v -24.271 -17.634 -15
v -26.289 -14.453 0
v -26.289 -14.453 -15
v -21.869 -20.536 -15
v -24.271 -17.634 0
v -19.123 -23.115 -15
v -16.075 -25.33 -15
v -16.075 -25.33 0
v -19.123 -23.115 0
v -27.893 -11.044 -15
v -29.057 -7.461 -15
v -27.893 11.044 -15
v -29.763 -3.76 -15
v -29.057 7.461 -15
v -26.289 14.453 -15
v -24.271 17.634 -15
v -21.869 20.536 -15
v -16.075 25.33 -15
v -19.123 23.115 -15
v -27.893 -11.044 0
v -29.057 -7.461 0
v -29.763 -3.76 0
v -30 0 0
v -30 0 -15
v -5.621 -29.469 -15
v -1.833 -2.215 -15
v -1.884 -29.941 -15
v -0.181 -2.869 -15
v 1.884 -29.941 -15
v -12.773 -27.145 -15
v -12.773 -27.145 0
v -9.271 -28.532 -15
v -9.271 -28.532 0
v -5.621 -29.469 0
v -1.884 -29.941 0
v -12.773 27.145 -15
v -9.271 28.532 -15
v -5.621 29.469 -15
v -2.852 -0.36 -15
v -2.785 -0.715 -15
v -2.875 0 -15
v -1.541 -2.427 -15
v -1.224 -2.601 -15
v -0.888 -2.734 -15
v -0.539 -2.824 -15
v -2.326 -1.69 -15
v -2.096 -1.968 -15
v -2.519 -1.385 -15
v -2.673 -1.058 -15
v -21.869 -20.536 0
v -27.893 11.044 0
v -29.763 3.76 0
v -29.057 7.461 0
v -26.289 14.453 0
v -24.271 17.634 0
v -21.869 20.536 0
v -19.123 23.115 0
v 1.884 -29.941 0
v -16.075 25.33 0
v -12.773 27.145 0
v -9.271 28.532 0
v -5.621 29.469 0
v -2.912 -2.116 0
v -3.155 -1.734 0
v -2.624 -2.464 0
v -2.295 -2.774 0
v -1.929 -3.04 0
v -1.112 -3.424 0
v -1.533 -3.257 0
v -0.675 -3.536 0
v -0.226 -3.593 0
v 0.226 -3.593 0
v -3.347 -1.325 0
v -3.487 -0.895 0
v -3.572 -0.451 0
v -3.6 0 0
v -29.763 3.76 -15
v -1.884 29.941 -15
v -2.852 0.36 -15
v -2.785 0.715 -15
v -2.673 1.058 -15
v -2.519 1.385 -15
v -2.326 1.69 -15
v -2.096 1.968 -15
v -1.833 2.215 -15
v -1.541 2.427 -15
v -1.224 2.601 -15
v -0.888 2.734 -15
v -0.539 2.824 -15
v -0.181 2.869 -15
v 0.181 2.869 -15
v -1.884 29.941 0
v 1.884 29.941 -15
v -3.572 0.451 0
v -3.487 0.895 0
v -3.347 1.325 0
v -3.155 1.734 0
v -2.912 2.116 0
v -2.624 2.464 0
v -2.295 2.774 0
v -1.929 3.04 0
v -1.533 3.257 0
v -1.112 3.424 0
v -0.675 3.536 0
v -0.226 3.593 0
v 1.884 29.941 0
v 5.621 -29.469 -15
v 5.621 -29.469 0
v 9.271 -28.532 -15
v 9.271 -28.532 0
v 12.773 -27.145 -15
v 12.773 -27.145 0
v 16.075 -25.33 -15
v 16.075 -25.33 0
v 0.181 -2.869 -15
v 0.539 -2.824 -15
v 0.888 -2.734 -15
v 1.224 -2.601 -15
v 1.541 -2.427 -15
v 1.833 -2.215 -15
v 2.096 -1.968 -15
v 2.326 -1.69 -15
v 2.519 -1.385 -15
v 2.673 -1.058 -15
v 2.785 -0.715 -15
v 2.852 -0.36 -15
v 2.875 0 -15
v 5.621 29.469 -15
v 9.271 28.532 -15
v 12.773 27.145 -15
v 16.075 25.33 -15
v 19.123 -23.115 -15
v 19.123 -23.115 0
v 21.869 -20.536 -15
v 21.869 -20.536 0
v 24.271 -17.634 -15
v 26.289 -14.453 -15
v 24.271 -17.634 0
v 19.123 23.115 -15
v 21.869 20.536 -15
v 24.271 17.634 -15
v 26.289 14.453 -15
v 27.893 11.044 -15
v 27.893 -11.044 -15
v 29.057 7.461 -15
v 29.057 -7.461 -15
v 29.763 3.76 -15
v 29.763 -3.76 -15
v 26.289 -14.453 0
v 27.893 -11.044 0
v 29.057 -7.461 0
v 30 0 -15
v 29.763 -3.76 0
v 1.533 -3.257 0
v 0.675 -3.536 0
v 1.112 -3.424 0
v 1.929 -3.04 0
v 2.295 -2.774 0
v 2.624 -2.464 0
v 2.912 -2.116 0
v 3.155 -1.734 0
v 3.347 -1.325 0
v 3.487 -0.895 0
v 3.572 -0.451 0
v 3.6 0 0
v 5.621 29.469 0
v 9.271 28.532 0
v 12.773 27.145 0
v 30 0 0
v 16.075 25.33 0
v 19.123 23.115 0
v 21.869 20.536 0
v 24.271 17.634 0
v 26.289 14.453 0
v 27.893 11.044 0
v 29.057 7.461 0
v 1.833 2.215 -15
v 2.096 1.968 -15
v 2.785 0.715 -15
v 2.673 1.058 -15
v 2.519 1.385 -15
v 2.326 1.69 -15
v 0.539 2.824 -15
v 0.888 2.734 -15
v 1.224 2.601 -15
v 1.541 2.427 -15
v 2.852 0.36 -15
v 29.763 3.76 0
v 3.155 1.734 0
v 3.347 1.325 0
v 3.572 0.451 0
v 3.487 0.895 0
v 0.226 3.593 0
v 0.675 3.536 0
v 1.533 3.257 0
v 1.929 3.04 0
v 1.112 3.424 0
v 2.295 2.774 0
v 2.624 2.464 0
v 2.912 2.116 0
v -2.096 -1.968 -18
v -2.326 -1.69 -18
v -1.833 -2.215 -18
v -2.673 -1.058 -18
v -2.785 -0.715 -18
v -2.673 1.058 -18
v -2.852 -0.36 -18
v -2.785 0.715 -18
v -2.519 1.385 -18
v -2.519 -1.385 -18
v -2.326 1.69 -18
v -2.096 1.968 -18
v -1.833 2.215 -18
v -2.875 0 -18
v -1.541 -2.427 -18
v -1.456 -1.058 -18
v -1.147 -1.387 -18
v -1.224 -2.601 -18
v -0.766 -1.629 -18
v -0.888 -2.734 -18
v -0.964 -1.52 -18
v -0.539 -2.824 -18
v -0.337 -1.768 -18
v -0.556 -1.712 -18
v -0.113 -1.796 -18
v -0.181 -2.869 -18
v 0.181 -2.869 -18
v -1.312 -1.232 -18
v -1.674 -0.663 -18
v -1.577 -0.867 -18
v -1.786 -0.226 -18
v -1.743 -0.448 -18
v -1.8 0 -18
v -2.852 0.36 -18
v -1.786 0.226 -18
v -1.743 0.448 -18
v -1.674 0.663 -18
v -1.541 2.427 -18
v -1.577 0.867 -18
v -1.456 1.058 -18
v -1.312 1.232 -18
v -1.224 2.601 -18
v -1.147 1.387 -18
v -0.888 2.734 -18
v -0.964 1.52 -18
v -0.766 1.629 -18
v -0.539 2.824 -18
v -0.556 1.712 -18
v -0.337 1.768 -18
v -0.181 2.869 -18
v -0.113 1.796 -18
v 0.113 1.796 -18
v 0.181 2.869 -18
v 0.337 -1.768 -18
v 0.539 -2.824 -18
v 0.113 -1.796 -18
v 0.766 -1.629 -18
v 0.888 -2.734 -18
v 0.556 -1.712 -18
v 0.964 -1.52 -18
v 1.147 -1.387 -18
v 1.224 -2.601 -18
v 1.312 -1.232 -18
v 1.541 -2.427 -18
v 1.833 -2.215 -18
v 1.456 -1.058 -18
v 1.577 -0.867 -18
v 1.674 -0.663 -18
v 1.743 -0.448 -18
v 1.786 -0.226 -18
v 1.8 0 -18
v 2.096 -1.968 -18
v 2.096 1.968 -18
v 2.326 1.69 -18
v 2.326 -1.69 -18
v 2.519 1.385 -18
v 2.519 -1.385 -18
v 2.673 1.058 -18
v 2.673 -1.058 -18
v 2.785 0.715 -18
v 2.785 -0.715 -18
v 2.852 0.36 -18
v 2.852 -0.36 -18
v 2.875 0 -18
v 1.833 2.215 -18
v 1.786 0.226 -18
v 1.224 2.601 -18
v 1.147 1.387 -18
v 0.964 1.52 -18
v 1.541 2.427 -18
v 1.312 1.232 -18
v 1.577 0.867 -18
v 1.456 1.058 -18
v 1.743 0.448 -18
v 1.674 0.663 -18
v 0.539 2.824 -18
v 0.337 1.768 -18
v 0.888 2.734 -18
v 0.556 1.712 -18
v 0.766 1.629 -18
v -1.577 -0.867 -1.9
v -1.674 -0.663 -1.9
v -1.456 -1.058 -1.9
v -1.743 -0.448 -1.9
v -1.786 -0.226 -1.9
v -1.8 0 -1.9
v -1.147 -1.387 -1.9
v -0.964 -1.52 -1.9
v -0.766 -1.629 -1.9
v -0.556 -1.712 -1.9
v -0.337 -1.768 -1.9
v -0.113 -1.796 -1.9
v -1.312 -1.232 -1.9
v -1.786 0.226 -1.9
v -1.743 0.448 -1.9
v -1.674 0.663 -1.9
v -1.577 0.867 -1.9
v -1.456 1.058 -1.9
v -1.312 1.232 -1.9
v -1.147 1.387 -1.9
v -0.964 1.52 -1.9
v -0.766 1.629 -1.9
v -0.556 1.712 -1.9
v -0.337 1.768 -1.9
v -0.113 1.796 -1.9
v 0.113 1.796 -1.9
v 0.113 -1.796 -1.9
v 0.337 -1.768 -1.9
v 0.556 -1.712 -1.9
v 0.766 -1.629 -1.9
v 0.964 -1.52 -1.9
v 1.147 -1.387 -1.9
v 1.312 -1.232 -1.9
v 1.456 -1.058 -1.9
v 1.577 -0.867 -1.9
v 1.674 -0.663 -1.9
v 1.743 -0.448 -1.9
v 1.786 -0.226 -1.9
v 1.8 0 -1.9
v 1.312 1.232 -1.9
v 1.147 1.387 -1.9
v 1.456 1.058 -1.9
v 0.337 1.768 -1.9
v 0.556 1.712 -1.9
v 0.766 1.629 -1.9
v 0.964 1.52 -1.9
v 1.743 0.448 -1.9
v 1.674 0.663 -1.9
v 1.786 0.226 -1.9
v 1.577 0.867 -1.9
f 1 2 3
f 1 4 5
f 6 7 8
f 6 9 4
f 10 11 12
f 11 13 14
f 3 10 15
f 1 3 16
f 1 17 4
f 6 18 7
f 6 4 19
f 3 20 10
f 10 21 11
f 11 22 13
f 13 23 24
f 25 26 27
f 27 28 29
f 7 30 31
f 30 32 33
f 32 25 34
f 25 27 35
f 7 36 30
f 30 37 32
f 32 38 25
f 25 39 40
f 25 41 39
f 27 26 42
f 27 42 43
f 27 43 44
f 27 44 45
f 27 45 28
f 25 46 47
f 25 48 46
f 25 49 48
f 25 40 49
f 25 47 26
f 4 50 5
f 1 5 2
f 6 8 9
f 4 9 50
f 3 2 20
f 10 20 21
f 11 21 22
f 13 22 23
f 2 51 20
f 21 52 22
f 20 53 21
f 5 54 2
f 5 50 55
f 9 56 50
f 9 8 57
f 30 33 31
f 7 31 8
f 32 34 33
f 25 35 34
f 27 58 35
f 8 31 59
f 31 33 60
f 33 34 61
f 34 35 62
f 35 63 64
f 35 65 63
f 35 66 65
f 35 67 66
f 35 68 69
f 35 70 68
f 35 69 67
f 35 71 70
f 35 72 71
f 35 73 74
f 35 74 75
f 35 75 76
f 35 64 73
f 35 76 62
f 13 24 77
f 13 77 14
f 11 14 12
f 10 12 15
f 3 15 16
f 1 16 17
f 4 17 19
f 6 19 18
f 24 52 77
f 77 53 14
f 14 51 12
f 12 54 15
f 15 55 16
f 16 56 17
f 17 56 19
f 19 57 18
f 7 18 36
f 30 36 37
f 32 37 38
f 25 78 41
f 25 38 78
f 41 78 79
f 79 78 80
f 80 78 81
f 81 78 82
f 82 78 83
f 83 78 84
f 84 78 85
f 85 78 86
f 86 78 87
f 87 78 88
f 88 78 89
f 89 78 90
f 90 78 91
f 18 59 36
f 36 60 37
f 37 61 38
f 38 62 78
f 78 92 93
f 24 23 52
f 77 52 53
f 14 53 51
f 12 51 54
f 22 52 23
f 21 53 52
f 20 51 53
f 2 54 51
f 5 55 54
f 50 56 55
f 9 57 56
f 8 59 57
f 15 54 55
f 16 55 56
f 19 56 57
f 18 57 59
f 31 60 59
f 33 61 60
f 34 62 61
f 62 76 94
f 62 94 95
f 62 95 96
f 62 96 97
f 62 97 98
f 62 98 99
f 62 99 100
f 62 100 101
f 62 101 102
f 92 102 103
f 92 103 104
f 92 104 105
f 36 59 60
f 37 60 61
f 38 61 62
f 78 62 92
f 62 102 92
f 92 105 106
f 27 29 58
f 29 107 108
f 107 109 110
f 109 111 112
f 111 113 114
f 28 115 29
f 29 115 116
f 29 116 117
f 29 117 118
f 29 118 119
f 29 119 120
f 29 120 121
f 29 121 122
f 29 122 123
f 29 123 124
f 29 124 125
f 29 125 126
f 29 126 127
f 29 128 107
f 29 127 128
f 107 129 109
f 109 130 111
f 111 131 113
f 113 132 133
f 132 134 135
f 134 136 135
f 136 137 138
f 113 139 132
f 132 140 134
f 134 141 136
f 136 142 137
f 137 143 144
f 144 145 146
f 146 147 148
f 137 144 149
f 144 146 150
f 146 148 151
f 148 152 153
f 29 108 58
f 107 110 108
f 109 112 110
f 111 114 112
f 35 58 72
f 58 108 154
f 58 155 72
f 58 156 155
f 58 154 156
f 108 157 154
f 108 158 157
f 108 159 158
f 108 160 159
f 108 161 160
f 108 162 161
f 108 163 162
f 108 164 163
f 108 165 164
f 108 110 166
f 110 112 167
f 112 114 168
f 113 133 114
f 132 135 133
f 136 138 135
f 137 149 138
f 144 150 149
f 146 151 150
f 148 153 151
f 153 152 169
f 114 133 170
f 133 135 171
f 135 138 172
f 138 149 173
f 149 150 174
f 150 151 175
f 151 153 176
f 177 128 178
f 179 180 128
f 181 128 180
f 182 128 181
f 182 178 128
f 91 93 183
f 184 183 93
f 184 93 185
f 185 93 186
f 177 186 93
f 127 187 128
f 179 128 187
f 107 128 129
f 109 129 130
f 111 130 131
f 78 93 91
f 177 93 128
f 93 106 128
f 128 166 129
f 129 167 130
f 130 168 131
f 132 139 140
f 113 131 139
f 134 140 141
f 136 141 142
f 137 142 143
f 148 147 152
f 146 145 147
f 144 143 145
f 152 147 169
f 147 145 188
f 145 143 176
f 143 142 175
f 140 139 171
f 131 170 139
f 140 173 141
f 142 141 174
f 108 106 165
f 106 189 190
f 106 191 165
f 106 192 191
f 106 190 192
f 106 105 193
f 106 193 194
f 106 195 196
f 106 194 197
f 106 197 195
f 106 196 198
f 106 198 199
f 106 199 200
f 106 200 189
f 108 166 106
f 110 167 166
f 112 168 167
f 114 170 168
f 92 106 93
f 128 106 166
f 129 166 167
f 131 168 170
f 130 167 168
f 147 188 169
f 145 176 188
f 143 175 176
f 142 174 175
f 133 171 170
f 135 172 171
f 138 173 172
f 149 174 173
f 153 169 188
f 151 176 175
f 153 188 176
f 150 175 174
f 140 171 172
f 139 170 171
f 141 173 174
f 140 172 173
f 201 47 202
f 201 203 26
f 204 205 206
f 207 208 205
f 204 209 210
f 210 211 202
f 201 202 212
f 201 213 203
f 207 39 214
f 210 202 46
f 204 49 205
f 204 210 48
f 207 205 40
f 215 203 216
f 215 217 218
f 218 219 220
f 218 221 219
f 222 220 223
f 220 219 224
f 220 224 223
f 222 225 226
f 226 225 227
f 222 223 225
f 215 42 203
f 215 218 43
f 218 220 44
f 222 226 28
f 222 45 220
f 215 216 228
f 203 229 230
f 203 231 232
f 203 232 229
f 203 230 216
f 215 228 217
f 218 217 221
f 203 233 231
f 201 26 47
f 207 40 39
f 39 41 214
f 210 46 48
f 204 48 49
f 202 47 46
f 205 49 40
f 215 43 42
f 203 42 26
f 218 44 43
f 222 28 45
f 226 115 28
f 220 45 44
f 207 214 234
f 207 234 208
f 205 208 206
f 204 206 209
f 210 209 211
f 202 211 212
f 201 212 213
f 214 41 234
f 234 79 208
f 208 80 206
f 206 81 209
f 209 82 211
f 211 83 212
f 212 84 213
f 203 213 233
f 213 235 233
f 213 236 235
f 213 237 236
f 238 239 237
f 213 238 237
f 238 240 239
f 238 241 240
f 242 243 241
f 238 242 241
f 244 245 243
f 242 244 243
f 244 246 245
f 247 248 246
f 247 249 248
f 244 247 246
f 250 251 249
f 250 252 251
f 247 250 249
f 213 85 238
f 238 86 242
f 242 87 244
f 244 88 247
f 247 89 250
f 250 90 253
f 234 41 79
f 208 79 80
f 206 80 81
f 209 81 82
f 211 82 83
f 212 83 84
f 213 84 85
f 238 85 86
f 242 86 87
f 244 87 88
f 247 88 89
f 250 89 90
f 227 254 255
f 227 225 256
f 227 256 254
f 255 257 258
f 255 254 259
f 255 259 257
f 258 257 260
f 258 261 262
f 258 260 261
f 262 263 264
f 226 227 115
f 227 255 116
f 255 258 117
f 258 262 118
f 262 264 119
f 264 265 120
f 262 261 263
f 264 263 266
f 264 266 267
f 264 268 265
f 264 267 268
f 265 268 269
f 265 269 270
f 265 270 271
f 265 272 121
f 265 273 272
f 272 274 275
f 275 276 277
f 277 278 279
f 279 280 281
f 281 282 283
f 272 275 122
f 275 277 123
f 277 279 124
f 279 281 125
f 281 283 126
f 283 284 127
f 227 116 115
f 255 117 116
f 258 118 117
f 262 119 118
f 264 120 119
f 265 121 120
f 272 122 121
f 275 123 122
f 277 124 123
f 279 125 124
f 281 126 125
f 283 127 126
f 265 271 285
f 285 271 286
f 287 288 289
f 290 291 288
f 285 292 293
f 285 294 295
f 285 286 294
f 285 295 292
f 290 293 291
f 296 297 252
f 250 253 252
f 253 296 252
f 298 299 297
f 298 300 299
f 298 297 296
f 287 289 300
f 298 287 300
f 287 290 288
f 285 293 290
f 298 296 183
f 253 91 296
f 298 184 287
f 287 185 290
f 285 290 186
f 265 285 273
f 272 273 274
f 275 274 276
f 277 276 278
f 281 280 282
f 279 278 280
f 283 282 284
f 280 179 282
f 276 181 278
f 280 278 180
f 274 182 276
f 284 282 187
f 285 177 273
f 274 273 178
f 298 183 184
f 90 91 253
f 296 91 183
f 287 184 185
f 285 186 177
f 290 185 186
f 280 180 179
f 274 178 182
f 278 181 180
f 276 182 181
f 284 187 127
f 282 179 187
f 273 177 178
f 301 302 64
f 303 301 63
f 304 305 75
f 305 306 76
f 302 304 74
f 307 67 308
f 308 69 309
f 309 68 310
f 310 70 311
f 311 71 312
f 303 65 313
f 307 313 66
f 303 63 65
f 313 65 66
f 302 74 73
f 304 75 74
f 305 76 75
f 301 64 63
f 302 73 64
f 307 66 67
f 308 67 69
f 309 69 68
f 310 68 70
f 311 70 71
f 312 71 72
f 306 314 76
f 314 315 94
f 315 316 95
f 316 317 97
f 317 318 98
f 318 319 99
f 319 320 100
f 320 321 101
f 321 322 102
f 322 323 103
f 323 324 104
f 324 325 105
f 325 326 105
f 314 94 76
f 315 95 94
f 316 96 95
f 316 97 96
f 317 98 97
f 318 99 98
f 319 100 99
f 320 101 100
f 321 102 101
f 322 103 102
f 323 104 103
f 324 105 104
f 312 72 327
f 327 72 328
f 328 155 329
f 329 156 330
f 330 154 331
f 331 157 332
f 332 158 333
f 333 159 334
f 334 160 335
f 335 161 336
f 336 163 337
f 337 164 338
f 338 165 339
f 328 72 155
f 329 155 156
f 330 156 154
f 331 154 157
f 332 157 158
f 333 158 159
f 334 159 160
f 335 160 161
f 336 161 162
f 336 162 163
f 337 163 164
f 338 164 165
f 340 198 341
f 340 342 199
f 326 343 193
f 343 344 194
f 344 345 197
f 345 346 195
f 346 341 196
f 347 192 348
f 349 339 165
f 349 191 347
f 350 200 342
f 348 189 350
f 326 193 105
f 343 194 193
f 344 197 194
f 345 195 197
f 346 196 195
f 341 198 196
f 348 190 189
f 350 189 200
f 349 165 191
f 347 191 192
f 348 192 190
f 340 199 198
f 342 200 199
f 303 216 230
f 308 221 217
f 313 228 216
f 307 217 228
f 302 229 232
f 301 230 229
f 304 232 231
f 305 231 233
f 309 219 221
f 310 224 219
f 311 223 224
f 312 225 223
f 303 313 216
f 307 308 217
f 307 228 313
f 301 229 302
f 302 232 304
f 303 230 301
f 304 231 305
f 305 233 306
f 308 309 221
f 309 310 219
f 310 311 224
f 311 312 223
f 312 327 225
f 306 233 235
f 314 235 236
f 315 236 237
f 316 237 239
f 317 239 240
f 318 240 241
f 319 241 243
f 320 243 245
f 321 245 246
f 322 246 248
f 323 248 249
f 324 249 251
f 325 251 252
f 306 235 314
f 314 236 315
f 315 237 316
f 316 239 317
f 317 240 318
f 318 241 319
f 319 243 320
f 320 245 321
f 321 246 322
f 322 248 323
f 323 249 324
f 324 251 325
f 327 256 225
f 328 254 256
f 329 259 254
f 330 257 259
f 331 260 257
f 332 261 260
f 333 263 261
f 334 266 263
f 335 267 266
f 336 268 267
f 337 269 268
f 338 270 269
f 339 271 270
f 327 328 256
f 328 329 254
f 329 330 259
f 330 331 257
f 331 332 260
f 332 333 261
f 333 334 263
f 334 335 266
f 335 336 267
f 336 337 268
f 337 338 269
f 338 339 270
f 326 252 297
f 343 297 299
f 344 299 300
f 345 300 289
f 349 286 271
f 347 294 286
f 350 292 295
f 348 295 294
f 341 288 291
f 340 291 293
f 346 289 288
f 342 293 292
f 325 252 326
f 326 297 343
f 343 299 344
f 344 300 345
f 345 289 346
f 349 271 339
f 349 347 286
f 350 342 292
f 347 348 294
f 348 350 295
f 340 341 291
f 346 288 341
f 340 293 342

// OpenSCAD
$fn = 50;

difference() {
	union() {
		translate(v = [0, 0, -15.0]) {
			cylinder(h = 15, r = 30.0);
		}
		#translate(v = [0, 0, -18.0]) {
			cylinder(h = 18, r = 2.875);
		}
	}
	union() {
		translate(v = [0, 0, 0]) {
			rotate(a = [0, 0, 0]) {
				difference() {
					union() {
						translate(v = [0, 0, -18.0]) {
							cylinder(h = 18, r = 1.5);
						}
						translate(v = [0, 0, -1.9]) {
							cylinder(h = 1.9, r1 = 1.8, r2 = 3.6);
						}
						translate(v = [0, 0, -18.0]) {
							cylinder(h = 18, r = 1.8);
						}
						translate(v = [0, 0, -18.0]) {
							cylinder(h = 18, r = 1.5);
						}
					}
					union();
				}
			}
		}
	}
}
